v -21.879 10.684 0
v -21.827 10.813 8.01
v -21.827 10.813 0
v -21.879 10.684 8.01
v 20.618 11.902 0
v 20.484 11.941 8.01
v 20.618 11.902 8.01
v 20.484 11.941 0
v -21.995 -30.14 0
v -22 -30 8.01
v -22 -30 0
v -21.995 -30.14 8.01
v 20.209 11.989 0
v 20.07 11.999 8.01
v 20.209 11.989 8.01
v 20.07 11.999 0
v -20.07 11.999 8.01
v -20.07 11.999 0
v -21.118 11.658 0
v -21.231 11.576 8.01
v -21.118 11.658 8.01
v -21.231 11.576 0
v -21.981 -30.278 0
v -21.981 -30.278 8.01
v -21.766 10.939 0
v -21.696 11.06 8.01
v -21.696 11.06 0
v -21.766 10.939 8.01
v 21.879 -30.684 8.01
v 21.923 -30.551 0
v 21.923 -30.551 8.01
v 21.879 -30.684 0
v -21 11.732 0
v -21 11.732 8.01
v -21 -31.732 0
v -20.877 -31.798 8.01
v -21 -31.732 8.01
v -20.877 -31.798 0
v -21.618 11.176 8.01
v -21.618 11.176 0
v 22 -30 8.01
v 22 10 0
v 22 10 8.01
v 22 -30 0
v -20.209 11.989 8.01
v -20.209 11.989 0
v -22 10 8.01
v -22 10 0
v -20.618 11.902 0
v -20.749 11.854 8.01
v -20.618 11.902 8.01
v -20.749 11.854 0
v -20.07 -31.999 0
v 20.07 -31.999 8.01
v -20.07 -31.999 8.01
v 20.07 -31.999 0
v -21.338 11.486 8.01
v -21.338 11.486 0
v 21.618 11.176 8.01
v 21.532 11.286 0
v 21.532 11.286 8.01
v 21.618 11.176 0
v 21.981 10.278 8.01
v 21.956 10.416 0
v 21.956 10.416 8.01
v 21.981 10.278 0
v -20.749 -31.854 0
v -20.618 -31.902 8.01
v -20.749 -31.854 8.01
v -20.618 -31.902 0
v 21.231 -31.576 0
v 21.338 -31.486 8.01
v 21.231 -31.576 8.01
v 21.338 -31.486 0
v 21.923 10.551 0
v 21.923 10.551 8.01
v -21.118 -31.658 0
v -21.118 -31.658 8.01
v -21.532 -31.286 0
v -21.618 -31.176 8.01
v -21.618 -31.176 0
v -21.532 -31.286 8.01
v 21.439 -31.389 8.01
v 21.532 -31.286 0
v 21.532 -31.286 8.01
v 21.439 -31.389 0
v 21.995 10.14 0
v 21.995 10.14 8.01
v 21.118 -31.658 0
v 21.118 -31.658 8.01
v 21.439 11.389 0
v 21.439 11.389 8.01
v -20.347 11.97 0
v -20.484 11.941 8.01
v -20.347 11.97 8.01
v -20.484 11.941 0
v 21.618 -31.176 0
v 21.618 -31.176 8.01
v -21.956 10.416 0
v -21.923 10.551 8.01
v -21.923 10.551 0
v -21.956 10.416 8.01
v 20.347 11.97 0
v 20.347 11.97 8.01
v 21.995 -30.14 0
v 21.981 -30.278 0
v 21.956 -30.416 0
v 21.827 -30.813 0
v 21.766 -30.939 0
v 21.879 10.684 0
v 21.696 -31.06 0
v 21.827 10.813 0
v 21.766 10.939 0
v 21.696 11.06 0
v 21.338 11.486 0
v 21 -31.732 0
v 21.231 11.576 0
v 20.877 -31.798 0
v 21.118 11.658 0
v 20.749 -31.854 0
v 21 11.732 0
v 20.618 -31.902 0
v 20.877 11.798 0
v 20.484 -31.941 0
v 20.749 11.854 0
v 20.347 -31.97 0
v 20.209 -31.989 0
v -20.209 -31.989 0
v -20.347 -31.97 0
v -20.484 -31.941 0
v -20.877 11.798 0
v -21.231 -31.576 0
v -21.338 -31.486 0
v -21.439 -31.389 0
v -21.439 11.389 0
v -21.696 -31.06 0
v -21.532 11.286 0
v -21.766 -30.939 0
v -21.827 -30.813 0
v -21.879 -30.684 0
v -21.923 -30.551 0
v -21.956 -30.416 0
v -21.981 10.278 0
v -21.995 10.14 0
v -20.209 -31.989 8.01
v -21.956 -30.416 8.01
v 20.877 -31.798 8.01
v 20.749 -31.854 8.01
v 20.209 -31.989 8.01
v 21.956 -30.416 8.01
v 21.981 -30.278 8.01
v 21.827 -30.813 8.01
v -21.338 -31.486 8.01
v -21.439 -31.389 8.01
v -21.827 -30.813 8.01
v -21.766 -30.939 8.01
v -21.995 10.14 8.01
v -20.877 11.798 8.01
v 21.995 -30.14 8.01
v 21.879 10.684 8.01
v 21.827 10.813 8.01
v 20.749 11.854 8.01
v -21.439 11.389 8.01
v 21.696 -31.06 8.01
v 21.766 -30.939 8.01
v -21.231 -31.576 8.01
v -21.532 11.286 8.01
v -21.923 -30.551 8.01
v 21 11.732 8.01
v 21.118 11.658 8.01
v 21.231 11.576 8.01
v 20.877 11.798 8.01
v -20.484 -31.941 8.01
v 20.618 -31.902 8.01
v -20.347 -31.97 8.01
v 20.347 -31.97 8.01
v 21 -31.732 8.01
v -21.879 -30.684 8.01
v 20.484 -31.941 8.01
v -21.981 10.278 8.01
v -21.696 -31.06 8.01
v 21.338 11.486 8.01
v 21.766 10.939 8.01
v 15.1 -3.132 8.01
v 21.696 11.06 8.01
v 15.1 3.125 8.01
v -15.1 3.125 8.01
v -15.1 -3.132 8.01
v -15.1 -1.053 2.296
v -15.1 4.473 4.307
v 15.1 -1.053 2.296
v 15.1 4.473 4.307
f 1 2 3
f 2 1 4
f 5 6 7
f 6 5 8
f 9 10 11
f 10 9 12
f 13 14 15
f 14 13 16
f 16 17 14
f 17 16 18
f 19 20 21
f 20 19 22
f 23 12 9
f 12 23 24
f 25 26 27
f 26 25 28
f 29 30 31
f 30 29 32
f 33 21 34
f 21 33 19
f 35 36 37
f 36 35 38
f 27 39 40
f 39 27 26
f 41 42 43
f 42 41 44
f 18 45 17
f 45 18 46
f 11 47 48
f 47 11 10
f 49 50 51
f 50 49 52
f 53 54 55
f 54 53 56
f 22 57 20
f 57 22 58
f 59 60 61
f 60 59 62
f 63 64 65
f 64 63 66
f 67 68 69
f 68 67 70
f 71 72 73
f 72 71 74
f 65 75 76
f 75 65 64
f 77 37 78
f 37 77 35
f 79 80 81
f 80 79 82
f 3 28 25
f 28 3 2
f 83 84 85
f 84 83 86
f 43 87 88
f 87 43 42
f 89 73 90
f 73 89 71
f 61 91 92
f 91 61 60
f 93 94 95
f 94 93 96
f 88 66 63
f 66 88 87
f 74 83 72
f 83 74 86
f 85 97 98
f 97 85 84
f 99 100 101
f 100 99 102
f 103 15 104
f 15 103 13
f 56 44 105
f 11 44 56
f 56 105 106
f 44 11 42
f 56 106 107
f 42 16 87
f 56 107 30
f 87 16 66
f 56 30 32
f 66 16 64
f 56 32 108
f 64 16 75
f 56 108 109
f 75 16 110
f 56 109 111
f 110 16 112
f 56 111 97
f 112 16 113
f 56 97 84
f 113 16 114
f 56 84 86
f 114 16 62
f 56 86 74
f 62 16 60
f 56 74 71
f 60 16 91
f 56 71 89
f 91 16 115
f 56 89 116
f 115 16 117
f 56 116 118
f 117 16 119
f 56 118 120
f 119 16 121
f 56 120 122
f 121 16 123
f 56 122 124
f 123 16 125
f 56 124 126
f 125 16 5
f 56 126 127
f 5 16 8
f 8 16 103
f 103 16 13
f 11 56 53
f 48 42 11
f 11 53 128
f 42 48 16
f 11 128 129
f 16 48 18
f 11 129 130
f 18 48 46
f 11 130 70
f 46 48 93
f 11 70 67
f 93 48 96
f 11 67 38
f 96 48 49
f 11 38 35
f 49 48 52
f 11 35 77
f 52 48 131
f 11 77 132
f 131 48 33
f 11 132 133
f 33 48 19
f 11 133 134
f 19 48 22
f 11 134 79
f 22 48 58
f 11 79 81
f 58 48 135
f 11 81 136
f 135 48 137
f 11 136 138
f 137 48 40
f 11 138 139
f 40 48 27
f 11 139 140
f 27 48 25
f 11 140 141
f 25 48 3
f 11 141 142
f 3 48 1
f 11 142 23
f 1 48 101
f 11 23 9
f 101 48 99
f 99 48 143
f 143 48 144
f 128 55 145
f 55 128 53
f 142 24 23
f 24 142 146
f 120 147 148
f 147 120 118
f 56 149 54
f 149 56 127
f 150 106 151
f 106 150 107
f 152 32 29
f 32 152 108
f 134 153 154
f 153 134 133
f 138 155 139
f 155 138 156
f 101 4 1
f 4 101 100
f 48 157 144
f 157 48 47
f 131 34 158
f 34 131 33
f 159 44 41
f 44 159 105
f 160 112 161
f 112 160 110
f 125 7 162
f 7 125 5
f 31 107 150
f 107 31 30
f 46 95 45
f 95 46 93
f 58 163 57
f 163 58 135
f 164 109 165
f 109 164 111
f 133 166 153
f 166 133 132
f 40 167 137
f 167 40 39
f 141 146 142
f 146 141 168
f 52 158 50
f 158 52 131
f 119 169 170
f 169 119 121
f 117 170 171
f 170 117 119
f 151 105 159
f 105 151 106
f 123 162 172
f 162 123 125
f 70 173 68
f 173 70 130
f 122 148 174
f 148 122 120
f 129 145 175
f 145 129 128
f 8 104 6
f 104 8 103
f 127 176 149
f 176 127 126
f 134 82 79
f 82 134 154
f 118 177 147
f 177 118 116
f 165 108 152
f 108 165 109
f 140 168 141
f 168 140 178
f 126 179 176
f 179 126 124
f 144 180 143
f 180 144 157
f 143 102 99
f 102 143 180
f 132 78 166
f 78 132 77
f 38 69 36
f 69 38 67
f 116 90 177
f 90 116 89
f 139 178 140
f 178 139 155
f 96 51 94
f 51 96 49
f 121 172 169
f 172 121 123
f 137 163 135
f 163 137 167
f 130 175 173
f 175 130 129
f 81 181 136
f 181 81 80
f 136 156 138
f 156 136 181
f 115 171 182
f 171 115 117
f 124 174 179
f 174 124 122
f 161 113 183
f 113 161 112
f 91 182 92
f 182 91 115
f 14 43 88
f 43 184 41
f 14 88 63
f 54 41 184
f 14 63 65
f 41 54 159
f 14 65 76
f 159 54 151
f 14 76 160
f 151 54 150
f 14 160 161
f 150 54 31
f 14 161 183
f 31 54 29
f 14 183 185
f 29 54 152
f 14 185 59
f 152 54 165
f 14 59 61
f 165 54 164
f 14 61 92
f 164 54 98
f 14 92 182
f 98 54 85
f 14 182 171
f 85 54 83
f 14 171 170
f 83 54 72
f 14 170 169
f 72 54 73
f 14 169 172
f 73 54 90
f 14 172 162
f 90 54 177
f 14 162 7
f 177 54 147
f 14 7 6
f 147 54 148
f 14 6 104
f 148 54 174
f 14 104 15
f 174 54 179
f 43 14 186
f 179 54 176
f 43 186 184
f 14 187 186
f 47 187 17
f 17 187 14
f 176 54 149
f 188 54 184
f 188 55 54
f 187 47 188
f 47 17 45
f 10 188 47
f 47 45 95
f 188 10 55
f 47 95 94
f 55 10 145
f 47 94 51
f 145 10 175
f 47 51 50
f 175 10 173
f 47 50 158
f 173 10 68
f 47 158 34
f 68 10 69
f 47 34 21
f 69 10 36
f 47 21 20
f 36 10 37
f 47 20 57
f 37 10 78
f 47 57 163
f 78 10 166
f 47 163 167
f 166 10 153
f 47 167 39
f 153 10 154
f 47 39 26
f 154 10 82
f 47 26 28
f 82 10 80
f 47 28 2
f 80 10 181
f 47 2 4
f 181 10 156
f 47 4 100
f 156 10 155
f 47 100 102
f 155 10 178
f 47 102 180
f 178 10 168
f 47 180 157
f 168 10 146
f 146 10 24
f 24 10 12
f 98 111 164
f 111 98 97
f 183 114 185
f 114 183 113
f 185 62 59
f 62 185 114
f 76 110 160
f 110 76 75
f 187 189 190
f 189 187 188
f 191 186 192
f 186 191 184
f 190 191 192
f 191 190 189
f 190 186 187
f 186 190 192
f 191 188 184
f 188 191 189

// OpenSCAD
$fn = 90;

module slot() {
  w = 30.2;
  d = 5.88;
  h = 10.0;
  translate([-w / 2, -d / 2, -h/2])
    cube([w, d, h]);
}

difference() {
  translate([-20, -30, 0])
  minkowski() {
    cube([40, 40, 8]);
    cylinder(.01, r = 2);
  }
  translate([0,0,8])
    rotate([20, 0, 0])
      slot();
}
